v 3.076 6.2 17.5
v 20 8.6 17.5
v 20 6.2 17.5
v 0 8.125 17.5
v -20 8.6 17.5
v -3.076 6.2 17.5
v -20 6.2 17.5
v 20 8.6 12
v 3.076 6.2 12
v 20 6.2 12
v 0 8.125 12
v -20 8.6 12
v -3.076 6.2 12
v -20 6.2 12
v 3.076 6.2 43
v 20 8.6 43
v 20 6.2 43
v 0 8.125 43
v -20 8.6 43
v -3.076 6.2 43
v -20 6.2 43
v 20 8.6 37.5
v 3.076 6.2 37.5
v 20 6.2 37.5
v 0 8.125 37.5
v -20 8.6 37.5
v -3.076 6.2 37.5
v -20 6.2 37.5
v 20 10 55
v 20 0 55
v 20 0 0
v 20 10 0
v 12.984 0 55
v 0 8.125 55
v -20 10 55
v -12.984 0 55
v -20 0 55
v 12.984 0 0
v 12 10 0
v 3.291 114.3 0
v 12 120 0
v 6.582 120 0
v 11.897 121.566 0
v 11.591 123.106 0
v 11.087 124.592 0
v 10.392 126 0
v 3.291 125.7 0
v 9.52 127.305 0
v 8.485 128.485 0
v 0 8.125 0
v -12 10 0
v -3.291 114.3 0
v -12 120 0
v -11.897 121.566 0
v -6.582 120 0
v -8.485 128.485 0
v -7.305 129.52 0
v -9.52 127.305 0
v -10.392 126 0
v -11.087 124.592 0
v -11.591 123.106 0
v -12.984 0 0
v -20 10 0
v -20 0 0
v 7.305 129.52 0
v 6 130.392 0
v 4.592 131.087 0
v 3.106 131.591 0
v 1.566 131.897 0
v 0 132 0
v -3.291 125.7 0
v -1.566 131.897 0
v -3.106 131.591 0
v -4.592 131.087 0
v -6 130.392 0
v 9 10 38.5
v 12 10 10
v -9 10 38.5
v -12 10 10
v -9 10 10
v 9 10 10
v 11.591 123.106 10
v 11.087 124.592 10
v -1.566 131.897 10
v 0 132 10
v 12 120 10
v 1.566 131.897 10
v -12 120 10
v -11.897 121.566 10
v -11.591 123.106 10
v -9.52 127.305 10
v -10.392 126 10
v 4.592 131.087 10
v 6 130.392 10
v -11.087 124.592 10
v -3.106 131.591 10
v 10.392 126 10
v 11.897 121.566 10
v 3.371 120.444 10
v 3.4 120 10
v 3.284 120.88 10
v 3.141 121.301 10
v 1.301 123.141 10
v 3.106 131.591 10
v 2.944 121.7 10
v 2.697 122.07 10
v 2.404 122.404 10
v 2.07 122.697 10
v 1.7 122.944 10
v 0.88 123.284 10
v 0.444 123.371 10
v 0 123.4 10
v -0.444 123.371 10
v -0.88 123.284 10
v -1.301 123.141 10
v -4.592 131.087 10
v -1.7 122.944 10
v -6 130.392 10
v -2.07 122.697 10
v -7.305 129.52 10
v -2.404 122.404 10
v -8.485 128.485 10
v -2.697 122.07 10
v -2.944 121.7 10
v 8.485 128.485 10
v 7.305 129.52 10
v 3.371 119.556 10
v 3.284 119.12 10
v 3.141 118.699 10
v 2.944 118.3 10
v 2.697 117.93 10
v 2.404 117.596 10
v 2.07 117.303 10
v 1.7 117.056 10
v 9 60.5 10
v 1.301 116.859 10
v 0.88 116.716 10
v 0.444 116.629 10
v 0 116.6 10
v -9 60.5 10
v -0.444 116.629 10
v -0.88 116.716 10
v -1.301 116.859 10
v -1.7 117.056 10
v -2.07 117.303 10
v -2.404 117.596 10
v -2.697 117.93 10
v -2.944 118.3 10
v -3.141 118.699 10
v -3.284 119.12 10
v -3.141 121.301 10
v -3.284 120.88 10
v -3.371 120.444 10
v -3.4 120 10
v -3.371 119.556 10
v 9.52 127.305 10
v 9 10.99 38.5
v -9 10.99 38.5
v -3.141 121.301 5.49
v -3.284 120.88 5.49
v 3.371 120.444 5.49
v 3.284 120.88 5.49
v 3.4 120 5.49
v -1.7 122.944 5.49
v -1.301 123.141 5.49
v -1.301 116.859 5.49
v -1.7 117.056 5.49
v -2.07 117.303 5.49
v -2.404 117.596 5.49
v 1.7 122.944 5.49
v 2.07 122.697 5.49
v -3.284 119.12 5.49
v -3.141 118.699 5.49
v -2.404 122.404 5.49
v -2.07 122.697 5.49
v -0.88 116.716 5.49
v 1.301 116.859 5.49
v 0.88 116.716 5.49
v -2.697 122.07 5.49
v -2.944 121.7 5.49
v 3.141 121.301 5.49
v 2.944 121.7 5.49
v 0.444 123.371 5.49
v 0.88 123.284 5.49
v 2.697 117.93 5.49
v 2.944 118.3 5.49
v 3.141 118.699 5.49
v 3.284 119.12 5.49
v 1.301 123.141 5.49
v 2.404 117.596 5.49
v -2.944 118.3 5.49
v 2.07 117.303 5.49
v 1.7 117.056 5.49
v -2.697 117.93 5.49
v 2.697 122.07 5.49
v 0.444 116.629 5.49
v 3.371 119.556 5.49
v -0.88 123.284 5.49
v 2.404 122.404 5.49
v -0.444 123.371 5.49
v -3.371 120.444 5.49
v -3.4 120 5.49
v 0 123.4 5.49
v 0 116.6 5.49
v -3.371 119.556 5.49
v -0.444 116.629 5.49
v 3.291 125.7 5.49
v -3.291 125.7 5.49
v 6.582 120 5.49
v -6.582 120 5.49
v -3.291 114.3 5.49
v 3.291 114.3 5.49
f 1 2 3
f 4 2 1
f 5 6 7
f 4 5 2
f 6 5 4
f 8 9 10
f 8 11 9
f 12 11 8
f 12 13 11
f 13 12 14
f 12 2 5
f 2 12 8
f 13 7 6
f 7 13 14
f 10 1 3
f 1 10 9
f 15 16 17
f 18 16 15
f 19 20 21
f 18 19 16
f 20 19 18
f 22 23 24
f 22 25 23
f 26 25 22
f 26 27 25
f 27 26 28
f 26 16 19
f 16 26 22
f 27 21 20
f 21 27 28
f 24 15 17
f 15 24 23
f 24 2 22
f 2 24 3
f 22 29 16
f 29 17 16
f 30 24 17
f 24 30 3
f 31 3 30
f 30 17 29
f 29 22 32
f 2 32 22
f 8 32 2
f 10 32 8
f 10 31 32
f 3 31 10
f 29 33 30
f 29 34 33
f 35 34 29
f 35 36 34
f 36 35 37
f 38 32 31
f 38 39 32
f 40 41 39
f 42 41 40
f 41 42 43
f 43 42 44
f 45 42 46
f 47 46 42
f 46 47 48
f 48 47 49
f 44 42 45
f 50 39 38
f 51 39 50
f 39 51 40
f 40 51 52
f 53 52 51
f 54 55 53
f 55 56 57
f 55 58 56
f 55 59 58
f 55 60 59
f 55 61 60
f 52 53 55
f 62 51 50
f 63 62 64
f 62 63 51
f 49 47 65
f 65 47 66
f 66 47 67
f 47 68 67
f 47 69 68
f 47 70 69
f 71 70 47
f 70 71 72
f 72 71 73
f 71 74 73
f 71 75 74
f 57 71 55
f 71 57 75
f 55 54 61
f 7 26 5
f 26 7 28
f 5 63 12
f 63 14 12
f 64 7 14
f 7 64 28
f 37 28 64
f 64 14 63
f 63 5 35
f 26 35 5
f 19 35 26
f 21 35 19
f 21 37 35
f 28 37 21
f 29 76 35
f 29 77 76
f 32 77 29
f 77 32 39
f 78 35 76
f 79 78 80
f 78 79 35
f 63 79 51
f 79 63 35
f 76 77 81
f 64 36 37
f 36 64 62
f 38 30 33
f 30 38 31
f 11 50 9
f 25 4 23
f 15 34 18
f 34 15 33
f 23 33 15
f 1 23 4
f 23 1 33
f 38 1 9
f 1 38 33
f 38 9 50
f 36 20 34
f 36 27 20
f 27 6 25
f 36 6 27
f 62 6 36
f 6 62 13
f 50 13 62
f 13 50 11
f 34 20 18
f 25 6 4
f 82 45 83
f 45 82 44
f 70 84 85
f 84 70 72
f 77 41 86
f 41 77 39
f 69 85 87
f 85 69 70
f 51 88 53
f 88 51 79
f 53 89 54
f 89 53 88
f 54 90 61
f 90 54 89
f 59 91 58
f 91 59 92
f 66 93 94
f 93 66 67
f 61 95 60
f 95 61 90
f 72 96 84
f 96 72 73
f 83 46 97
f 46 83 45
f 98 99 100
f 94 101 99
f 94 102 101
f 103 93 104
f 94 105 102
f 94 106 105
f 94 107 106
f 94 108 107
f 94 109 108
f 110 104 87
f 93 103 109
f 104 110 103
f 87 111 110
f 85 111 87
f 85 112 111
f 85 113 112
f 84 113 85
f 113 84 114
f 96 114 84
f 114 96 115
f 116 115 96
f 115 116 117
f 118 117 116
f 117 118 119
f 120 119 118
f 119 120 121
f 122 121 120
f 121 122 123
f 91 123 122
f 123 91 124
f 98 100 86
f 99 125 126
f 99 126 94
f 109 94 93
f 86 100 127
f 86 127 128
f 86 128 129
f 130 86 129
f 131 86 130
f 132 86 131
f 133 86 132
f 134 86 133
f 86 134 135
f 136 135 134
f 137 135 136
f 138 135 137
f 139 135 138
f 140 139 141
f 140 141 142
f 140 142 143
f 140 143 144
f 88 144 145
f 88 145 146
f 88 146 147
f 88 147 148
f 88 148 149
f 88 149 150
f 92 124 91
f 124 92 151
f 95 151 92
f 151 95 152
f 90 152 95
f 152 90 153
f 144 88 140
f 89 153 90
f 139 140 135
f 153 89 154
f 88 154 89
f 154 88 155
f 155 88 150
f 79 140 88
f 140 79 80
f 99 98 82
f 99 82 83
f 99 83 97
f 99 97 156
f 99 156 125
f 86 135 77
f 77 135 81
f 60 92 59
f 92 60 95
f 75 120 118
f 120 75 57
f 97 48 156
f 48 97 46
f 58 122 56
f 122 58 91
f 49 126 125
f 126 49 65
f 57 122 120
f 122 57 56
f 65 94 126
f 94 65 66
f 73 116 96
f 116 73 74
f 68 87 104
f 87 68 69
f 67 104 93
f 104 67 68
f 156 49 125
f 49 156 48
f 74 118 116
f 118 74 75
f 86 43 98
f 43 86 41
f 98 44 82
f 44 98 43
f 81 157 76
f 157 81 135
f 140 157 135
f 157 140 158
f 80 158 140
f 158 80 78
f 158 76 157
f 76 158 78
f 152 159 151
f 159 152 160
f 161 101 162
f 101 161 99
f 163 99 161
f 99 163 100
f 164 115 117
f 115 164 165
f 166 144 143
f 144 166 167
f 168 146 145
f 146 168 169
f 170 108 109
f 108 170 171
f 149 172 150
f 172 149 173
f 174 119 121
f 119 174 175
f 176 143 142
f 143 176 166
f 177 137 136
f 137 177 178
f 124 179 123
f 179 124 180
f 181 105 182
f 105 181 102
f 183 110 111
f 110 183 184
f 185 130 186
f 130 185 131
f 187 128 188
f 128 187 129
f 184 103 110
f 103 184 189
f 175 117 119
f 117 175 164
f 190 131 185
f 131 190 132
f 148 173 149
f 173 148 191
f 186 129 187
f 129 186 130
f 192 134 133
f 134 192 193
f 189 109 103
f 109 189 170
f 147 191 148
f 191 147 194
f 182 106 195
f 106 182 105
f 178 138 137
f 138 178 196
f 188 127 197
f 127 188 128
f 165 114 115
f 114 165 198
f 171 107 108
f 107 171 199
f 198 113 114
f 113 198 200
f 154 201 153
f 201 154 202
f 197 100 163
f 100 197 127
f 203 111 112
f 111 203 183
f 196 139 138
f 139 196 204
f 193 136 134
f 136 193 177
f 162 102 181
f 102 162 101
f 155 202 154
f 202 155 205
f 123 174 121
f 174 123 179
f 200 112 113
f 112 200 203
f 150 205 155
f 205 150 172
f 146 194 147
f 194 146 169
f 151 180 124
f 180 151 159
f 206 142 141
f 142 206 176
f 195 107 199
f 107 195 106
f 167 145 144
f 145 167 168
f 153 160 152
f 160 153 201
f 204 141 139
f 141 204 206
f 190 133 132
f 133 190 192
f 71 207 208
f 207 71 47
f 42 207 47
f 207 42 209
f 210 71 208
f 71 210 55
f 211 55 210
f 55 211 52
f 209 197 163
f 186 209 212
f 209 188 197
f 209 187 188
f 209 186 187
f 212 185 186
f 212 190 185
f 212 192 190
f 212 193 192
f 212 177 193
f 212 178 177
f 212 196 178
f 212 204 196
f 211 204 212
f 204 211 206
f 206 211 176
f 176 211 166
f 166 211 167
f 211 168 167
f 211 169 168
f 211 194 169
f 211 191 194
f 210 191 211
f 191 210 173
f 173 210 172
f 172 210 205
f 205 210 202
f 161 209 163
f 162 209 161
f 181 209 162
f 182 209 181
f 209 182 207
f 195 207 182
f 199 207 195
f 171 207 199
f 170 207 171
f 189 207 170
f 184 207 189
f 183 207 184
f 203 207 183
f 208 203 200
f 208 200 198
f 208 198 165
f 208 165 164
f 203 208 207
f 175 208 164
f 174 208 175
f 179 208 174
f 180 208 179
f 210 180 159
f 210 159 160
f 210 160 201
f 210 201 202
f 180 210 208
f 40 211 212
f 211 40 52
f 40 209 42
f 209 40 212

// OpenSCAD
// Growing Minds · Timelapse arm
// Zip-ties to a tower column (any diameter) and holds a phone at the same
// spot every week, so the photo journal's timelapse doesn't jump around.
//
// It works like the top of a tripod: a 1/4"-20 bolt points UP from the
// end of the arm. Screw on any phone tripod clamp (the clamp's bottom
// tripod hole), stand the phone up, and turn it to face the slot.
//
// Hardware: 2 zip ties (up to 5 mm wide), one 1/4"-20 bolt about 1/2"
// long, one 1/4"-20 hex nut (drops into the pocket under the arm).
// Print exactly as modeled (arm flat on the bed, plate standing up).
// PETG or PLA, 4 walls, 40% infill, no supports.

arm_len   = 110;  // tower-to-phone distance (mm); 100-140 frames one slot
mount_w   = 40;   // plate width
mount_t   = 10;   // plate thickness
mount_h   = 55;   // plate height
arm_w     = 24;
arm_t     = 10;
groove    = 26;   // V-groove that self-centers on the round column
tie_w     = 5.5;
tie_t     = 2.4;
bolt_d    = 6.8;  // 1/4" clearance
nut_af    = 11.4; // 7/16" nut across flats + clearance
nut_depth = 5.5;
$fn = 48;

module plate() {
  difference() {
    translate([-mount_w / 2, 0, 0]) cube([mount_w, mount_t, mount_h]);
    // vertical V-groove on the face that touches the column
    translate([0, 0, -1]) linear_extrude(mount_h + 2)
      polygon([[-groove / 2, -0.01], [groove / 2, -0.01], [0, groove / 3.2]]);
    // zip-tie slots straight through the plate
    for (z = [12, mount_h - 12 - tie_w])
      translate([-mount_w / 2 - 1, mount_t * 0.62, z]) cube([mount_w + 2, tie_t, tie_w]);
  }
}

module arm() {
  difference() {
    union() {
      hull() {
        translate([-arm_w / 2, mount_t - 0.01, 0]) cube([arm_w, 1, arm_t]);
        translate([0, mount_t + arm_len, 0]) cylinder(d = arm_w, h = arm_t);
      }
      // gusset between plate and arm
      hull() {
        translate([-arm_w / 2 + 3, mount_t - 0.01, 0]) cube([arm_w - 6, 1, mount_h * 0.7]);
        translate([-arm_w / 2 + 3, mount_t + arm_len * 0.45, 0]) cube([arm_w - 6, 1, arm_t]);
      }
    }
    translate([0, mount_t + arm_len, -1]) cylinder(d = bolt_d, h = arm_t + 2);
    translate([0, mount_t + arm_len, -0.01]) cylinder(d = nut_af / cos(30), h = nut_depth, $fn = 6);
  }
}

plate();
arm();
